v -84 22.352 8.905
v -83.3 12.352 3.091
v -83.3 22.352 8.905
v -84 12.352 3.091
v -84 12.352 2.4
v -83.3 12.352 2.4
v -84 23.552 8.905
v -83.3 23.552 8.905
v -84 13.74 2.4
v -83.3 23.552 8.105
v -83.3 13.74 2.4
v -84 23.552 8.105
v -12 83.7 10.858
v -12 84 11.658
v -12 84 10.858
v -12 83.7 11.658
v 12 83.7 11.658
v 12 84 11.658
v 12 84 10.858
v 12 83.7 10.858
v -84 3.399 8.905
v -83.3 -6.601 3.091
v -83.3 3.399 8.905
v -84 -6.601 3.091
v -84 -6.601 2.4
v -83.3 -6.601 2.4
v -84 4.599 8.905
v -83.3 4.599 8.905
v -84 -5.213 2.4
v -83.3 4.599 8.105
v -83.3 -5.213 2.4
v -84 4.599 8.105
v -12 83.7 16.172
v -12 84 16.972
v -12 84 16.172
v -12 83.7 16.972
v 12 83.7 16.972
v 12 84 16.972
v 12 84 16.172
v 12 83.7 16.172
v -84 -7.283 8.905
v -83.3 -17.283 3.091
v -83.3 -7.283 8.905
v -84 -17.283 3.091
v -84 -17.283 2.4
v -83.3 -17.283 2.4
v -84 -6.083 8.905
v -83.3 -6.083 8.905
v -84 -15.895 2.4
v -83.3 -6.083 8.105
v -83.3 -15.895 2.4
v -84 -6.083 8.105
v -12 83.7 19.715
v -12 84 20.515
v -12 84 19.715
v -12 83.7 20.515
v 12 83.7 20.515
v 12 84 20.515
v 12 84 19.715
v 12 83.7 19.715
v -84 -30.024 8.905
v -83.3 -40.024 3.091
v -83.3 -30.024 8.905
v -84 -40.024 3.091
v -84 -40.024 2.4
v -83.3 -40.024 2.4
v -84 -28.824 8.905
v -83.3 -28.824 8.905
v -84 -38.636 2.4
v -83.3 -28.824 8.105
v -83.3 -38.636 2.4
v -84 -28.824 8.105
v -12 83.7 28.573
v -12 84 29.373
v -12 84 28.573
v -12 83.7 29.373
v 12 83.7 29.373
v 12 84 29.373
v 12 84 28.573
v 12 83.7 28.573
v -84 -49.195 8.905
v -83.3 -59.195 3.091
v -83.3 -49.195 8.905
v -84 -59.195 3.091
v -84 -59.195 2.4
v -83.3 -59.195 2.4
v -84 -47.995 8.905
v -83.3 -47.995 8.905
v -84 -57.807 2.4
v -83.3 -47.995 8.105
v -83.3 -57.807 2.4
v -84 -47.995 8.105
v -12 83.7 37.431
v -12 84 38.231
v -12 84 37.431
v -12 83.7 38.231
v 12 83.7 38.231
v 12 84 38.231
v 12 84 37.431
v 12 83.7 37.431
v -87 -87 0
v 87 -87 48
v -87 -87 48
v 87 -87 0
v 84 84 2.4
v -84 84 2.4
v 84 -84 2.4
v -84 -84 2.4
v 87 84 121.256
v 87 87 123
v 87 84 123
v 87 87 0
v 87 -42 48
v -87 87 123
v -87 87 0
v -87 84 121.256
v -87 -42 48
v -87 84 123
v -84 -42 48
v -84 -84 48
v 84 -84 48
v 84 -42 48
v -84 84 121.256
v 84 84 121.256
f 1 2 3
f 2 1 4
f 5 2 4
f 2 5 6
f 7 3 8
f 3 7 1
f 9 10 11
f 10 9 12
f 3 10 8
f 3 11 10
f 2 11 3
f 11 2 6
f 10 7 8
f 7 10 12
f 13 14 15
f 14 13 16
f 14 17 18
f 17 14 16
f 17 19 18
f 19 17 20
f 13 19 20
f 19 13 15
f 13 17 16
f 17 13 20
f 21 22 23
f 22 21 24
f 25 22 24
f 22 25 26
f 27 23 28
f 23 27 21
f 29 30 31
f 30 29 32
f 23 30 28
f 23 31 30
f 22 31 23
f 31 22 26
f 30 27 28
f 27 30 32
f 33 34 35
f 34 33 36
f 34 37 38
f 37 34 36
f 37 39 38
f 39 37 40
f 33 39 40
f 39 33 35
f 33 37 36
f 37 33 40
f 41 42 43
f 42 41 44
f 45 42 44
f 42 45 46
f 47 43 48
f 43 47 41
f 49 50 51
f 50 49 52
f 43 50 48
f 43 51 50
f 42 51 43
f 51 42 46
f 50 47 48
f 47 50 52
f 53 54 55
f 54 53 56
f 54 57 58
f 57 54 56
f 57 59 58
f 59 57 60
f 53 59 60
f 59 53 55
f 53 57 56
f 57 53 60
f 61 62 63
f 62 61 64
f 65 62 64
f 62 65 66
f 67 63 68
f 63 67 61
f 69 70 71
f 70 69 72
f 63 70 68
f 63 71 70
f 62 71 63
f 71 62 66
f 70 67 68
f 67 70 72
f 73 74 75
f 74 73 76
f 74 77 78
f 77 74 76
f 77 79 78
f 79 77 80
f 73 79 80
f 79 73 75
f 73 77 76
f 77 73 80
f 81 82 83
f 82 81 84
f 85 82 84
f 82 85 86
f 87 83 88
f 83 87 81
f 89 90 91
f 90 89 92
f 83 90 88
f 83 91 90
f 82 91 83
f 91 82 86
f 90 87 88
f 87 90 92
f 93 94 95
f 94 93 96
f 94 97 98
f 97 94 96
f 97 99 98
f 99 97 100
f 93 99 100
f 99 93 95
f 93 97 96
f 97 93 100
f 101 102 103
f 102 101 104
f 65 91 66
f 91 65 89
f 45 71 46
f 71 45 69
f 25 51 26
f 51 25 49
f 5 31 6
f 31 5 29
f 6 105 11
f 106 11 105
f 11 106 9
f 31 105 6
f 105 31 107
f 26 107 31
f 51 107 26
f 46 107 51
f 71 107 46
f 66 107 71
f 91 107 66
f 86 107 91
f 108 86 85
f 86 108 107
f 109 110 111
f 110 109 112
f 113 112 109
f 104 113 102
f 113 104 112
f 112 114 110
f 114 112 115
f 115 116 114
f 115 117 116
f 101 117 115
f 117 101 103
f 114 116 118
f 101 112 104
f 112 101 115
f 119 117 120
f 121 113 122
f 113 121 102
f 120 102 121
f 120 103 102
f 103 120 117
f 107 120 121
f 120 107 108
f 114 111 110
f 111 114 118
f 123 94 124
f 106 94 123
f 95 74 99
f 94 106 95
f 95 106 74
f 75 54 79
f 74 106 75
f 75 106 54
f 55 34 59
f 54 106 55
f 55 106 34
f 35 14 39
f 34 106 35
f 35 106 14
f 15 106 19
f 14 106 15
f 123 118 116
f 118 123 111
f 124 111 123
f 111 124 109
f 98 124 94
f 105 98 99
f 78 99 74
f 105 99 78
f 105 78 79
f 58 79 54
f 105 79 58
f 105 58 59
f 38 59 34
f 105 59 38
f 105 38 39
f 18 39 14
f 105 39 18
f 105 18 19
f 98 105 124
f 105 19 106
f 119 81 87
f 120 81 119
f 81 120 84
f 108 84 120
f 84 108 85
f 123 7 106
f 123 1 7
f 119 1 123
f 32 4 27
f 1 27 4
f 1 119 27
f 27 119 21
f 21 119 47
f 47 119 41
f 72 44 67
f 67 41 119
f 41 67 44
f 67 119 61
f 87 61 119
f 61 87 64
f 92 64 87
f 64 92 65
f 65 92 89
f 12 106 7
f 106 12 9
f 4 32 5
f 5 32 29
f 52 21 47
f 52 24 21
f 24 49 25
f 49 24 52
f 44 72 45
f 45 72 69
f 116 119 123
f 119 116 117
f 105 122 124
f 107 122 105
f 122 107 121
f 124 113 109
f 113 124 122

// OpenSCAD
// file: BOSL2/std.scad
// Minimal BOSL2 compatibility shim for bundled gallery models.
// It implements only the helpers used by the imported OpenSCAD projects.

CENTER = [0, 0, 0];
BOTTOM = [0, 0, -1];
TOP = [0, 0, 1];
LEFT = [-1, 0, 0];
RIGHT = [1, 0, 0];
FRONT = [0, -1, 0];
BACK = [0, 1, 0];

module up(z=0) {
    translate([0, 0, z]) children();
}

module down(z=0) {
    translate([0, 0, -z]) children();
}

module attach(anchor=CENTER) {
    children();
}

module cuboid(size=[1, 1, 1], anchor=CENTER) {
    center = anchor == CENTER;
    translate(center ? [0, 0, 0] : [0, 0, size[2] / 2])
        cube(size, center=true);
    children();
}

module xcyl(h=1, r=1, anchor=CENTER) {
    center = anchor == CENTER;
    translate(center ? [0, 0, 0] : [h / 2, 0, 0])
        rotate([0, 90, 0])
            cylinder(h=h, r=r, center=true);
}
// main file
include <BOSL2/std.scad>

/*
One-piece shallow drain-water collector for a Bambu A1 Mini.

The low front section slides below a freezer or washing-machine drain. Its
side walls remain low around the collection area, then rise toward a tall back
wall. To carry the water, lift the low/front edge and let the water settle
against the tall back wall. The wall profile is intended for a 30-45 degree
carrying angle.

Print in the generated orientation with no supports. Suggested settings are
0.20 mm layers, 4 walls, 5 bottom layers, and PETG. The broad floor provides
bed adhesion, so a brim should not be necessary on the 180 mm A1 Mini bed.

This is an open splash-resistant tray, not a sealed container. Carry it with
both hands and test it over a sink before using it near finished flooring.
*/

$fn = 64;

tray_x = 174;
tray_y = 174;
floor_thickness = 2.4;
wall_thickness = 3.0;
corner_radius = 7;

// Raising both ends equally preserves the existing 30-degree transport angle.
// The 48 mm front lip still fits beneath the newly measured drain clearance.
front_wall_height = 48;
back_wall_height = 123;

// Keep this much of the tray low enough to fit beneath the drain. Behind this
// point, the side-wall tops rise in a straight, support-free line.
low_section_end_y = -42;

// Raised waterline marks indicate volume while the tray is tilted far enough
// to make the rising top edges of the side walls horizontal.
show_fill_marks = true;
fill_mark_volumes = [250, 400, 500, 750, 1000]; // mL
fill_mark_depth = 0.8;
fill_mark_thickness = 0.8;
tilted_mark_length = 10;
flat_mark_length = 24;

inner_x = tray_x - 2*wall_thickness;
inner_y = tray_y - 2*wall_thickness;
carry_slope = (back_wall_height-front_wall_height)
    / (tray_y/2-low_section_end_y);
carry_angle = atan(carry_slope);

module floor_panel() {
    cuboid([tray_x, tray_y, floor_thickness],
        rounding=corner_radius, edges="Z", anchor=BOTTOM);
}

module front_wall() {
    translate([0, -tray_y/2+wall_thickness/2, 0])
        cuboid([tray_x, wall_thickness, front_wall_height], anchor=BOTTOM);
}

module back_wall() {
    translate([0, tray_y/2-wall_thickness/2, 0])
        cuboid([tray_x, wall_thickness, back_wall_height], anchor=BOTTOM);
}

module side_wall_profile() {
    // The polygon is expressed as [tray-depth, height]. Extruding and rotating
    // it produces a wall whose top stays low near the spout and rises aft.
    polygon([
        [-tray_y/2, 0],
        [ tray_y/2, 0],
        [ tray_y/2, back_wall_height],
        [ low_section_end_y, front_wall_height],
        [-tray_y/2, front_wall_height]
    ]);
}

module side_wall(x) {
    translate([x, 0, 0])
        rotate([90, 0, 90])
            linear_extrude(height=wall_thickness, center=true, convexity=4)
                side_wall_profile();
}

module tilted_fill_line(volume) {
    // At this angle the water forms a triangular cross section against the
    // back wall. Solve A = slope*length^2/2 for the wetted length.
    cross_section_area = volume*1000/inner_x;
    wetted_length = sqrt(2*cross_section_area/carry_slope);
    rear_y = inner_y/2;
    front_y = rear_y-wetted_length;
    mark_x = -(inner_x/2-fill_mark_depth/2+0.1);
    start_y = front_y+0.5;
    end_y = start_y+tilted_mark_length;
    start_z = floor_thickness+carry_slope*(start_y-front_y);
    end_z = floor_thickness+carry_slope*(end_y-front_y);

    hull() {
        translate([mark_x, start_y, start_z])
            cuboid([fill_mark_depth, 1.2, fill_mark_thickness]);
        translate([mark_x, end_y, end_z])
            cuboid([fill_mark_depth, 1.2, fill_mark_thickness]);
    }
}

module flat_fill_line(volume) {
    mark_z = floor_thickness+volume*1000/(inner_x*inner_y);

    translate([0, inner_y/2+0.1, mark_z])
        cuboid([flat_mark_length, fill_mark_depth, fill_mark_thickness]);
}

module fill_marks() {
    for (volume = fill_mark_volumes) {
        tilted_fill_line(volume);
        flat_fill_line(volume);
    }
}

module water_collector() {
    union() {
        floor_panel();
        front_wall();
        back_wall();
        side_wall(-tray_x/2+wall_thickness/2);
        side_wall( tray_x/2-wall_thickness/2);

        if (show_fill_marks)
            fill_marks();
    }
}

water_collector();

echo(str("Footprint: ", tray_x, " x ", tray_y, " mm"));
echo(str("Low front height: ", front_wall_height, " mm"));
echo(str("Tall back height: ", back_wall_height, " mm"));
echo(str("Level capacity to front lip: approximately ",
    floor(inner_x*inner_y*(front_wall_height-floor_thickness)/1000), " mL"));
echo(str("Marked carrying angle: ", carry_angle, " degrees"));
